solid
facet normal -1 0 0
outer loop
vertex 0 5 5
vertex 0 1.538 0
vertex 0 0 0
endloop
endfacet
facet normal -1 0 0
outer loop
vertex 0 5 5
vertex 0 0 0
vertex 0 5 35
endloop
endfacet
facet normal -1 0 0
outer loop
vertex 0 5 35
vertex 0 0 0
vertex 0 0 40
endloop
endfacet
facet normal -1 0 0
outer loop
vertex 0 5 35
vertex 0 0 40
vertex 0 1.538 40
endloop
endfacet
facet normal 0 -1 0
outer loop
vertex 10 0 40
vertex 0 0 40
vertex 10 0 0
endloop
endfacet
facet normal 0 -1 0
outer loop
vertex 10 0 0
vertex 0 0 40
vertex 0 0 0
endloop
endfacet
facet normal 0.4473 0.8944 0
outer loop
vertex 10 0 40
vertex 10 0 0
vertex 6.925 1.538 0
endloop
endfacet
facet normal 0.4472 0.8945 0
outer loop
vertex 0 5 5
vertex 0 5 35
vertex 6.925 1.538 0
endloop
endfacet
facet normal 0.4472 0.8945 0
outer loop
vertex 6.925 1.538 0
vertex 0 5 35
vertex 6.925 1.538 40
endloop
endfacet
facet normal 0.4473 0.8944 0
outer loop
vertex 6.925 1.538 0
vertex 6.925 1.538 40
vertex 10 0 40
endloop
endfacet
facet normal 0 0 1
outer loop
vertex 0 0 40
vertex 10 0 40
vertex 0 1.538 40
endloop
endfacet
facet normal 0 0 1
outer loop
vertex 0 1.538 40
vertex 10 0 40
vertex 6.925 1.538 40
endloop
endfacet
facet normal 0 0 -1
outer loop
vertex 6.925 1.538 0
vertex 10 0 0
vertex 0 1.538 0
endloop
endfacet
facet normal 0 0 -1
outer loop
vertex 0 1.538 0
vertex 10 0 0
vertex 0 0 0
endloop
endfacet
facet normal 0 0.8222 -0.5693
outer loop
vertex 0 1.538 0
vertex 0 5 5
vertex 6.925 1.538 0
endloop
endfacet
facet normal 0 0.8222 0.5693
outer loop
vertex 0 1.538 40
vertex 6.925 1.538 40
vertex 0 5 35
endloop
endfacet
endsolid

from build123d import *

# Parameters (mm, degrees)
BOSS_EXTRUDE1_DEPTH = 40
CUT_EXTRUDE1_DEPTH  = 30


with BuildPart() as part:
    # Sketch1 → Boss-Extrude1 (new body)
    with BuildSketch(Plane.XY):
        Polygon((0, 0), (10, 0), (0, 5), align=None)
    extrude(amount=BOSS_EXTRUDE1_DEPTH)

    # Sketch3 → Cut-Extrude1 (cut)
    with BuildSketch(Plane.ZY):
        Polygon((5, 5), (0, 1.537620853), (0, 5), align=None)
        Polygon((35, 5), (40, 5), (40, 1.537620853), align=None)
    extrude(amount=-CUT_EXTRUDE1_DEPTH, mode=Mode.SUBTRACT)


solid = part.part
